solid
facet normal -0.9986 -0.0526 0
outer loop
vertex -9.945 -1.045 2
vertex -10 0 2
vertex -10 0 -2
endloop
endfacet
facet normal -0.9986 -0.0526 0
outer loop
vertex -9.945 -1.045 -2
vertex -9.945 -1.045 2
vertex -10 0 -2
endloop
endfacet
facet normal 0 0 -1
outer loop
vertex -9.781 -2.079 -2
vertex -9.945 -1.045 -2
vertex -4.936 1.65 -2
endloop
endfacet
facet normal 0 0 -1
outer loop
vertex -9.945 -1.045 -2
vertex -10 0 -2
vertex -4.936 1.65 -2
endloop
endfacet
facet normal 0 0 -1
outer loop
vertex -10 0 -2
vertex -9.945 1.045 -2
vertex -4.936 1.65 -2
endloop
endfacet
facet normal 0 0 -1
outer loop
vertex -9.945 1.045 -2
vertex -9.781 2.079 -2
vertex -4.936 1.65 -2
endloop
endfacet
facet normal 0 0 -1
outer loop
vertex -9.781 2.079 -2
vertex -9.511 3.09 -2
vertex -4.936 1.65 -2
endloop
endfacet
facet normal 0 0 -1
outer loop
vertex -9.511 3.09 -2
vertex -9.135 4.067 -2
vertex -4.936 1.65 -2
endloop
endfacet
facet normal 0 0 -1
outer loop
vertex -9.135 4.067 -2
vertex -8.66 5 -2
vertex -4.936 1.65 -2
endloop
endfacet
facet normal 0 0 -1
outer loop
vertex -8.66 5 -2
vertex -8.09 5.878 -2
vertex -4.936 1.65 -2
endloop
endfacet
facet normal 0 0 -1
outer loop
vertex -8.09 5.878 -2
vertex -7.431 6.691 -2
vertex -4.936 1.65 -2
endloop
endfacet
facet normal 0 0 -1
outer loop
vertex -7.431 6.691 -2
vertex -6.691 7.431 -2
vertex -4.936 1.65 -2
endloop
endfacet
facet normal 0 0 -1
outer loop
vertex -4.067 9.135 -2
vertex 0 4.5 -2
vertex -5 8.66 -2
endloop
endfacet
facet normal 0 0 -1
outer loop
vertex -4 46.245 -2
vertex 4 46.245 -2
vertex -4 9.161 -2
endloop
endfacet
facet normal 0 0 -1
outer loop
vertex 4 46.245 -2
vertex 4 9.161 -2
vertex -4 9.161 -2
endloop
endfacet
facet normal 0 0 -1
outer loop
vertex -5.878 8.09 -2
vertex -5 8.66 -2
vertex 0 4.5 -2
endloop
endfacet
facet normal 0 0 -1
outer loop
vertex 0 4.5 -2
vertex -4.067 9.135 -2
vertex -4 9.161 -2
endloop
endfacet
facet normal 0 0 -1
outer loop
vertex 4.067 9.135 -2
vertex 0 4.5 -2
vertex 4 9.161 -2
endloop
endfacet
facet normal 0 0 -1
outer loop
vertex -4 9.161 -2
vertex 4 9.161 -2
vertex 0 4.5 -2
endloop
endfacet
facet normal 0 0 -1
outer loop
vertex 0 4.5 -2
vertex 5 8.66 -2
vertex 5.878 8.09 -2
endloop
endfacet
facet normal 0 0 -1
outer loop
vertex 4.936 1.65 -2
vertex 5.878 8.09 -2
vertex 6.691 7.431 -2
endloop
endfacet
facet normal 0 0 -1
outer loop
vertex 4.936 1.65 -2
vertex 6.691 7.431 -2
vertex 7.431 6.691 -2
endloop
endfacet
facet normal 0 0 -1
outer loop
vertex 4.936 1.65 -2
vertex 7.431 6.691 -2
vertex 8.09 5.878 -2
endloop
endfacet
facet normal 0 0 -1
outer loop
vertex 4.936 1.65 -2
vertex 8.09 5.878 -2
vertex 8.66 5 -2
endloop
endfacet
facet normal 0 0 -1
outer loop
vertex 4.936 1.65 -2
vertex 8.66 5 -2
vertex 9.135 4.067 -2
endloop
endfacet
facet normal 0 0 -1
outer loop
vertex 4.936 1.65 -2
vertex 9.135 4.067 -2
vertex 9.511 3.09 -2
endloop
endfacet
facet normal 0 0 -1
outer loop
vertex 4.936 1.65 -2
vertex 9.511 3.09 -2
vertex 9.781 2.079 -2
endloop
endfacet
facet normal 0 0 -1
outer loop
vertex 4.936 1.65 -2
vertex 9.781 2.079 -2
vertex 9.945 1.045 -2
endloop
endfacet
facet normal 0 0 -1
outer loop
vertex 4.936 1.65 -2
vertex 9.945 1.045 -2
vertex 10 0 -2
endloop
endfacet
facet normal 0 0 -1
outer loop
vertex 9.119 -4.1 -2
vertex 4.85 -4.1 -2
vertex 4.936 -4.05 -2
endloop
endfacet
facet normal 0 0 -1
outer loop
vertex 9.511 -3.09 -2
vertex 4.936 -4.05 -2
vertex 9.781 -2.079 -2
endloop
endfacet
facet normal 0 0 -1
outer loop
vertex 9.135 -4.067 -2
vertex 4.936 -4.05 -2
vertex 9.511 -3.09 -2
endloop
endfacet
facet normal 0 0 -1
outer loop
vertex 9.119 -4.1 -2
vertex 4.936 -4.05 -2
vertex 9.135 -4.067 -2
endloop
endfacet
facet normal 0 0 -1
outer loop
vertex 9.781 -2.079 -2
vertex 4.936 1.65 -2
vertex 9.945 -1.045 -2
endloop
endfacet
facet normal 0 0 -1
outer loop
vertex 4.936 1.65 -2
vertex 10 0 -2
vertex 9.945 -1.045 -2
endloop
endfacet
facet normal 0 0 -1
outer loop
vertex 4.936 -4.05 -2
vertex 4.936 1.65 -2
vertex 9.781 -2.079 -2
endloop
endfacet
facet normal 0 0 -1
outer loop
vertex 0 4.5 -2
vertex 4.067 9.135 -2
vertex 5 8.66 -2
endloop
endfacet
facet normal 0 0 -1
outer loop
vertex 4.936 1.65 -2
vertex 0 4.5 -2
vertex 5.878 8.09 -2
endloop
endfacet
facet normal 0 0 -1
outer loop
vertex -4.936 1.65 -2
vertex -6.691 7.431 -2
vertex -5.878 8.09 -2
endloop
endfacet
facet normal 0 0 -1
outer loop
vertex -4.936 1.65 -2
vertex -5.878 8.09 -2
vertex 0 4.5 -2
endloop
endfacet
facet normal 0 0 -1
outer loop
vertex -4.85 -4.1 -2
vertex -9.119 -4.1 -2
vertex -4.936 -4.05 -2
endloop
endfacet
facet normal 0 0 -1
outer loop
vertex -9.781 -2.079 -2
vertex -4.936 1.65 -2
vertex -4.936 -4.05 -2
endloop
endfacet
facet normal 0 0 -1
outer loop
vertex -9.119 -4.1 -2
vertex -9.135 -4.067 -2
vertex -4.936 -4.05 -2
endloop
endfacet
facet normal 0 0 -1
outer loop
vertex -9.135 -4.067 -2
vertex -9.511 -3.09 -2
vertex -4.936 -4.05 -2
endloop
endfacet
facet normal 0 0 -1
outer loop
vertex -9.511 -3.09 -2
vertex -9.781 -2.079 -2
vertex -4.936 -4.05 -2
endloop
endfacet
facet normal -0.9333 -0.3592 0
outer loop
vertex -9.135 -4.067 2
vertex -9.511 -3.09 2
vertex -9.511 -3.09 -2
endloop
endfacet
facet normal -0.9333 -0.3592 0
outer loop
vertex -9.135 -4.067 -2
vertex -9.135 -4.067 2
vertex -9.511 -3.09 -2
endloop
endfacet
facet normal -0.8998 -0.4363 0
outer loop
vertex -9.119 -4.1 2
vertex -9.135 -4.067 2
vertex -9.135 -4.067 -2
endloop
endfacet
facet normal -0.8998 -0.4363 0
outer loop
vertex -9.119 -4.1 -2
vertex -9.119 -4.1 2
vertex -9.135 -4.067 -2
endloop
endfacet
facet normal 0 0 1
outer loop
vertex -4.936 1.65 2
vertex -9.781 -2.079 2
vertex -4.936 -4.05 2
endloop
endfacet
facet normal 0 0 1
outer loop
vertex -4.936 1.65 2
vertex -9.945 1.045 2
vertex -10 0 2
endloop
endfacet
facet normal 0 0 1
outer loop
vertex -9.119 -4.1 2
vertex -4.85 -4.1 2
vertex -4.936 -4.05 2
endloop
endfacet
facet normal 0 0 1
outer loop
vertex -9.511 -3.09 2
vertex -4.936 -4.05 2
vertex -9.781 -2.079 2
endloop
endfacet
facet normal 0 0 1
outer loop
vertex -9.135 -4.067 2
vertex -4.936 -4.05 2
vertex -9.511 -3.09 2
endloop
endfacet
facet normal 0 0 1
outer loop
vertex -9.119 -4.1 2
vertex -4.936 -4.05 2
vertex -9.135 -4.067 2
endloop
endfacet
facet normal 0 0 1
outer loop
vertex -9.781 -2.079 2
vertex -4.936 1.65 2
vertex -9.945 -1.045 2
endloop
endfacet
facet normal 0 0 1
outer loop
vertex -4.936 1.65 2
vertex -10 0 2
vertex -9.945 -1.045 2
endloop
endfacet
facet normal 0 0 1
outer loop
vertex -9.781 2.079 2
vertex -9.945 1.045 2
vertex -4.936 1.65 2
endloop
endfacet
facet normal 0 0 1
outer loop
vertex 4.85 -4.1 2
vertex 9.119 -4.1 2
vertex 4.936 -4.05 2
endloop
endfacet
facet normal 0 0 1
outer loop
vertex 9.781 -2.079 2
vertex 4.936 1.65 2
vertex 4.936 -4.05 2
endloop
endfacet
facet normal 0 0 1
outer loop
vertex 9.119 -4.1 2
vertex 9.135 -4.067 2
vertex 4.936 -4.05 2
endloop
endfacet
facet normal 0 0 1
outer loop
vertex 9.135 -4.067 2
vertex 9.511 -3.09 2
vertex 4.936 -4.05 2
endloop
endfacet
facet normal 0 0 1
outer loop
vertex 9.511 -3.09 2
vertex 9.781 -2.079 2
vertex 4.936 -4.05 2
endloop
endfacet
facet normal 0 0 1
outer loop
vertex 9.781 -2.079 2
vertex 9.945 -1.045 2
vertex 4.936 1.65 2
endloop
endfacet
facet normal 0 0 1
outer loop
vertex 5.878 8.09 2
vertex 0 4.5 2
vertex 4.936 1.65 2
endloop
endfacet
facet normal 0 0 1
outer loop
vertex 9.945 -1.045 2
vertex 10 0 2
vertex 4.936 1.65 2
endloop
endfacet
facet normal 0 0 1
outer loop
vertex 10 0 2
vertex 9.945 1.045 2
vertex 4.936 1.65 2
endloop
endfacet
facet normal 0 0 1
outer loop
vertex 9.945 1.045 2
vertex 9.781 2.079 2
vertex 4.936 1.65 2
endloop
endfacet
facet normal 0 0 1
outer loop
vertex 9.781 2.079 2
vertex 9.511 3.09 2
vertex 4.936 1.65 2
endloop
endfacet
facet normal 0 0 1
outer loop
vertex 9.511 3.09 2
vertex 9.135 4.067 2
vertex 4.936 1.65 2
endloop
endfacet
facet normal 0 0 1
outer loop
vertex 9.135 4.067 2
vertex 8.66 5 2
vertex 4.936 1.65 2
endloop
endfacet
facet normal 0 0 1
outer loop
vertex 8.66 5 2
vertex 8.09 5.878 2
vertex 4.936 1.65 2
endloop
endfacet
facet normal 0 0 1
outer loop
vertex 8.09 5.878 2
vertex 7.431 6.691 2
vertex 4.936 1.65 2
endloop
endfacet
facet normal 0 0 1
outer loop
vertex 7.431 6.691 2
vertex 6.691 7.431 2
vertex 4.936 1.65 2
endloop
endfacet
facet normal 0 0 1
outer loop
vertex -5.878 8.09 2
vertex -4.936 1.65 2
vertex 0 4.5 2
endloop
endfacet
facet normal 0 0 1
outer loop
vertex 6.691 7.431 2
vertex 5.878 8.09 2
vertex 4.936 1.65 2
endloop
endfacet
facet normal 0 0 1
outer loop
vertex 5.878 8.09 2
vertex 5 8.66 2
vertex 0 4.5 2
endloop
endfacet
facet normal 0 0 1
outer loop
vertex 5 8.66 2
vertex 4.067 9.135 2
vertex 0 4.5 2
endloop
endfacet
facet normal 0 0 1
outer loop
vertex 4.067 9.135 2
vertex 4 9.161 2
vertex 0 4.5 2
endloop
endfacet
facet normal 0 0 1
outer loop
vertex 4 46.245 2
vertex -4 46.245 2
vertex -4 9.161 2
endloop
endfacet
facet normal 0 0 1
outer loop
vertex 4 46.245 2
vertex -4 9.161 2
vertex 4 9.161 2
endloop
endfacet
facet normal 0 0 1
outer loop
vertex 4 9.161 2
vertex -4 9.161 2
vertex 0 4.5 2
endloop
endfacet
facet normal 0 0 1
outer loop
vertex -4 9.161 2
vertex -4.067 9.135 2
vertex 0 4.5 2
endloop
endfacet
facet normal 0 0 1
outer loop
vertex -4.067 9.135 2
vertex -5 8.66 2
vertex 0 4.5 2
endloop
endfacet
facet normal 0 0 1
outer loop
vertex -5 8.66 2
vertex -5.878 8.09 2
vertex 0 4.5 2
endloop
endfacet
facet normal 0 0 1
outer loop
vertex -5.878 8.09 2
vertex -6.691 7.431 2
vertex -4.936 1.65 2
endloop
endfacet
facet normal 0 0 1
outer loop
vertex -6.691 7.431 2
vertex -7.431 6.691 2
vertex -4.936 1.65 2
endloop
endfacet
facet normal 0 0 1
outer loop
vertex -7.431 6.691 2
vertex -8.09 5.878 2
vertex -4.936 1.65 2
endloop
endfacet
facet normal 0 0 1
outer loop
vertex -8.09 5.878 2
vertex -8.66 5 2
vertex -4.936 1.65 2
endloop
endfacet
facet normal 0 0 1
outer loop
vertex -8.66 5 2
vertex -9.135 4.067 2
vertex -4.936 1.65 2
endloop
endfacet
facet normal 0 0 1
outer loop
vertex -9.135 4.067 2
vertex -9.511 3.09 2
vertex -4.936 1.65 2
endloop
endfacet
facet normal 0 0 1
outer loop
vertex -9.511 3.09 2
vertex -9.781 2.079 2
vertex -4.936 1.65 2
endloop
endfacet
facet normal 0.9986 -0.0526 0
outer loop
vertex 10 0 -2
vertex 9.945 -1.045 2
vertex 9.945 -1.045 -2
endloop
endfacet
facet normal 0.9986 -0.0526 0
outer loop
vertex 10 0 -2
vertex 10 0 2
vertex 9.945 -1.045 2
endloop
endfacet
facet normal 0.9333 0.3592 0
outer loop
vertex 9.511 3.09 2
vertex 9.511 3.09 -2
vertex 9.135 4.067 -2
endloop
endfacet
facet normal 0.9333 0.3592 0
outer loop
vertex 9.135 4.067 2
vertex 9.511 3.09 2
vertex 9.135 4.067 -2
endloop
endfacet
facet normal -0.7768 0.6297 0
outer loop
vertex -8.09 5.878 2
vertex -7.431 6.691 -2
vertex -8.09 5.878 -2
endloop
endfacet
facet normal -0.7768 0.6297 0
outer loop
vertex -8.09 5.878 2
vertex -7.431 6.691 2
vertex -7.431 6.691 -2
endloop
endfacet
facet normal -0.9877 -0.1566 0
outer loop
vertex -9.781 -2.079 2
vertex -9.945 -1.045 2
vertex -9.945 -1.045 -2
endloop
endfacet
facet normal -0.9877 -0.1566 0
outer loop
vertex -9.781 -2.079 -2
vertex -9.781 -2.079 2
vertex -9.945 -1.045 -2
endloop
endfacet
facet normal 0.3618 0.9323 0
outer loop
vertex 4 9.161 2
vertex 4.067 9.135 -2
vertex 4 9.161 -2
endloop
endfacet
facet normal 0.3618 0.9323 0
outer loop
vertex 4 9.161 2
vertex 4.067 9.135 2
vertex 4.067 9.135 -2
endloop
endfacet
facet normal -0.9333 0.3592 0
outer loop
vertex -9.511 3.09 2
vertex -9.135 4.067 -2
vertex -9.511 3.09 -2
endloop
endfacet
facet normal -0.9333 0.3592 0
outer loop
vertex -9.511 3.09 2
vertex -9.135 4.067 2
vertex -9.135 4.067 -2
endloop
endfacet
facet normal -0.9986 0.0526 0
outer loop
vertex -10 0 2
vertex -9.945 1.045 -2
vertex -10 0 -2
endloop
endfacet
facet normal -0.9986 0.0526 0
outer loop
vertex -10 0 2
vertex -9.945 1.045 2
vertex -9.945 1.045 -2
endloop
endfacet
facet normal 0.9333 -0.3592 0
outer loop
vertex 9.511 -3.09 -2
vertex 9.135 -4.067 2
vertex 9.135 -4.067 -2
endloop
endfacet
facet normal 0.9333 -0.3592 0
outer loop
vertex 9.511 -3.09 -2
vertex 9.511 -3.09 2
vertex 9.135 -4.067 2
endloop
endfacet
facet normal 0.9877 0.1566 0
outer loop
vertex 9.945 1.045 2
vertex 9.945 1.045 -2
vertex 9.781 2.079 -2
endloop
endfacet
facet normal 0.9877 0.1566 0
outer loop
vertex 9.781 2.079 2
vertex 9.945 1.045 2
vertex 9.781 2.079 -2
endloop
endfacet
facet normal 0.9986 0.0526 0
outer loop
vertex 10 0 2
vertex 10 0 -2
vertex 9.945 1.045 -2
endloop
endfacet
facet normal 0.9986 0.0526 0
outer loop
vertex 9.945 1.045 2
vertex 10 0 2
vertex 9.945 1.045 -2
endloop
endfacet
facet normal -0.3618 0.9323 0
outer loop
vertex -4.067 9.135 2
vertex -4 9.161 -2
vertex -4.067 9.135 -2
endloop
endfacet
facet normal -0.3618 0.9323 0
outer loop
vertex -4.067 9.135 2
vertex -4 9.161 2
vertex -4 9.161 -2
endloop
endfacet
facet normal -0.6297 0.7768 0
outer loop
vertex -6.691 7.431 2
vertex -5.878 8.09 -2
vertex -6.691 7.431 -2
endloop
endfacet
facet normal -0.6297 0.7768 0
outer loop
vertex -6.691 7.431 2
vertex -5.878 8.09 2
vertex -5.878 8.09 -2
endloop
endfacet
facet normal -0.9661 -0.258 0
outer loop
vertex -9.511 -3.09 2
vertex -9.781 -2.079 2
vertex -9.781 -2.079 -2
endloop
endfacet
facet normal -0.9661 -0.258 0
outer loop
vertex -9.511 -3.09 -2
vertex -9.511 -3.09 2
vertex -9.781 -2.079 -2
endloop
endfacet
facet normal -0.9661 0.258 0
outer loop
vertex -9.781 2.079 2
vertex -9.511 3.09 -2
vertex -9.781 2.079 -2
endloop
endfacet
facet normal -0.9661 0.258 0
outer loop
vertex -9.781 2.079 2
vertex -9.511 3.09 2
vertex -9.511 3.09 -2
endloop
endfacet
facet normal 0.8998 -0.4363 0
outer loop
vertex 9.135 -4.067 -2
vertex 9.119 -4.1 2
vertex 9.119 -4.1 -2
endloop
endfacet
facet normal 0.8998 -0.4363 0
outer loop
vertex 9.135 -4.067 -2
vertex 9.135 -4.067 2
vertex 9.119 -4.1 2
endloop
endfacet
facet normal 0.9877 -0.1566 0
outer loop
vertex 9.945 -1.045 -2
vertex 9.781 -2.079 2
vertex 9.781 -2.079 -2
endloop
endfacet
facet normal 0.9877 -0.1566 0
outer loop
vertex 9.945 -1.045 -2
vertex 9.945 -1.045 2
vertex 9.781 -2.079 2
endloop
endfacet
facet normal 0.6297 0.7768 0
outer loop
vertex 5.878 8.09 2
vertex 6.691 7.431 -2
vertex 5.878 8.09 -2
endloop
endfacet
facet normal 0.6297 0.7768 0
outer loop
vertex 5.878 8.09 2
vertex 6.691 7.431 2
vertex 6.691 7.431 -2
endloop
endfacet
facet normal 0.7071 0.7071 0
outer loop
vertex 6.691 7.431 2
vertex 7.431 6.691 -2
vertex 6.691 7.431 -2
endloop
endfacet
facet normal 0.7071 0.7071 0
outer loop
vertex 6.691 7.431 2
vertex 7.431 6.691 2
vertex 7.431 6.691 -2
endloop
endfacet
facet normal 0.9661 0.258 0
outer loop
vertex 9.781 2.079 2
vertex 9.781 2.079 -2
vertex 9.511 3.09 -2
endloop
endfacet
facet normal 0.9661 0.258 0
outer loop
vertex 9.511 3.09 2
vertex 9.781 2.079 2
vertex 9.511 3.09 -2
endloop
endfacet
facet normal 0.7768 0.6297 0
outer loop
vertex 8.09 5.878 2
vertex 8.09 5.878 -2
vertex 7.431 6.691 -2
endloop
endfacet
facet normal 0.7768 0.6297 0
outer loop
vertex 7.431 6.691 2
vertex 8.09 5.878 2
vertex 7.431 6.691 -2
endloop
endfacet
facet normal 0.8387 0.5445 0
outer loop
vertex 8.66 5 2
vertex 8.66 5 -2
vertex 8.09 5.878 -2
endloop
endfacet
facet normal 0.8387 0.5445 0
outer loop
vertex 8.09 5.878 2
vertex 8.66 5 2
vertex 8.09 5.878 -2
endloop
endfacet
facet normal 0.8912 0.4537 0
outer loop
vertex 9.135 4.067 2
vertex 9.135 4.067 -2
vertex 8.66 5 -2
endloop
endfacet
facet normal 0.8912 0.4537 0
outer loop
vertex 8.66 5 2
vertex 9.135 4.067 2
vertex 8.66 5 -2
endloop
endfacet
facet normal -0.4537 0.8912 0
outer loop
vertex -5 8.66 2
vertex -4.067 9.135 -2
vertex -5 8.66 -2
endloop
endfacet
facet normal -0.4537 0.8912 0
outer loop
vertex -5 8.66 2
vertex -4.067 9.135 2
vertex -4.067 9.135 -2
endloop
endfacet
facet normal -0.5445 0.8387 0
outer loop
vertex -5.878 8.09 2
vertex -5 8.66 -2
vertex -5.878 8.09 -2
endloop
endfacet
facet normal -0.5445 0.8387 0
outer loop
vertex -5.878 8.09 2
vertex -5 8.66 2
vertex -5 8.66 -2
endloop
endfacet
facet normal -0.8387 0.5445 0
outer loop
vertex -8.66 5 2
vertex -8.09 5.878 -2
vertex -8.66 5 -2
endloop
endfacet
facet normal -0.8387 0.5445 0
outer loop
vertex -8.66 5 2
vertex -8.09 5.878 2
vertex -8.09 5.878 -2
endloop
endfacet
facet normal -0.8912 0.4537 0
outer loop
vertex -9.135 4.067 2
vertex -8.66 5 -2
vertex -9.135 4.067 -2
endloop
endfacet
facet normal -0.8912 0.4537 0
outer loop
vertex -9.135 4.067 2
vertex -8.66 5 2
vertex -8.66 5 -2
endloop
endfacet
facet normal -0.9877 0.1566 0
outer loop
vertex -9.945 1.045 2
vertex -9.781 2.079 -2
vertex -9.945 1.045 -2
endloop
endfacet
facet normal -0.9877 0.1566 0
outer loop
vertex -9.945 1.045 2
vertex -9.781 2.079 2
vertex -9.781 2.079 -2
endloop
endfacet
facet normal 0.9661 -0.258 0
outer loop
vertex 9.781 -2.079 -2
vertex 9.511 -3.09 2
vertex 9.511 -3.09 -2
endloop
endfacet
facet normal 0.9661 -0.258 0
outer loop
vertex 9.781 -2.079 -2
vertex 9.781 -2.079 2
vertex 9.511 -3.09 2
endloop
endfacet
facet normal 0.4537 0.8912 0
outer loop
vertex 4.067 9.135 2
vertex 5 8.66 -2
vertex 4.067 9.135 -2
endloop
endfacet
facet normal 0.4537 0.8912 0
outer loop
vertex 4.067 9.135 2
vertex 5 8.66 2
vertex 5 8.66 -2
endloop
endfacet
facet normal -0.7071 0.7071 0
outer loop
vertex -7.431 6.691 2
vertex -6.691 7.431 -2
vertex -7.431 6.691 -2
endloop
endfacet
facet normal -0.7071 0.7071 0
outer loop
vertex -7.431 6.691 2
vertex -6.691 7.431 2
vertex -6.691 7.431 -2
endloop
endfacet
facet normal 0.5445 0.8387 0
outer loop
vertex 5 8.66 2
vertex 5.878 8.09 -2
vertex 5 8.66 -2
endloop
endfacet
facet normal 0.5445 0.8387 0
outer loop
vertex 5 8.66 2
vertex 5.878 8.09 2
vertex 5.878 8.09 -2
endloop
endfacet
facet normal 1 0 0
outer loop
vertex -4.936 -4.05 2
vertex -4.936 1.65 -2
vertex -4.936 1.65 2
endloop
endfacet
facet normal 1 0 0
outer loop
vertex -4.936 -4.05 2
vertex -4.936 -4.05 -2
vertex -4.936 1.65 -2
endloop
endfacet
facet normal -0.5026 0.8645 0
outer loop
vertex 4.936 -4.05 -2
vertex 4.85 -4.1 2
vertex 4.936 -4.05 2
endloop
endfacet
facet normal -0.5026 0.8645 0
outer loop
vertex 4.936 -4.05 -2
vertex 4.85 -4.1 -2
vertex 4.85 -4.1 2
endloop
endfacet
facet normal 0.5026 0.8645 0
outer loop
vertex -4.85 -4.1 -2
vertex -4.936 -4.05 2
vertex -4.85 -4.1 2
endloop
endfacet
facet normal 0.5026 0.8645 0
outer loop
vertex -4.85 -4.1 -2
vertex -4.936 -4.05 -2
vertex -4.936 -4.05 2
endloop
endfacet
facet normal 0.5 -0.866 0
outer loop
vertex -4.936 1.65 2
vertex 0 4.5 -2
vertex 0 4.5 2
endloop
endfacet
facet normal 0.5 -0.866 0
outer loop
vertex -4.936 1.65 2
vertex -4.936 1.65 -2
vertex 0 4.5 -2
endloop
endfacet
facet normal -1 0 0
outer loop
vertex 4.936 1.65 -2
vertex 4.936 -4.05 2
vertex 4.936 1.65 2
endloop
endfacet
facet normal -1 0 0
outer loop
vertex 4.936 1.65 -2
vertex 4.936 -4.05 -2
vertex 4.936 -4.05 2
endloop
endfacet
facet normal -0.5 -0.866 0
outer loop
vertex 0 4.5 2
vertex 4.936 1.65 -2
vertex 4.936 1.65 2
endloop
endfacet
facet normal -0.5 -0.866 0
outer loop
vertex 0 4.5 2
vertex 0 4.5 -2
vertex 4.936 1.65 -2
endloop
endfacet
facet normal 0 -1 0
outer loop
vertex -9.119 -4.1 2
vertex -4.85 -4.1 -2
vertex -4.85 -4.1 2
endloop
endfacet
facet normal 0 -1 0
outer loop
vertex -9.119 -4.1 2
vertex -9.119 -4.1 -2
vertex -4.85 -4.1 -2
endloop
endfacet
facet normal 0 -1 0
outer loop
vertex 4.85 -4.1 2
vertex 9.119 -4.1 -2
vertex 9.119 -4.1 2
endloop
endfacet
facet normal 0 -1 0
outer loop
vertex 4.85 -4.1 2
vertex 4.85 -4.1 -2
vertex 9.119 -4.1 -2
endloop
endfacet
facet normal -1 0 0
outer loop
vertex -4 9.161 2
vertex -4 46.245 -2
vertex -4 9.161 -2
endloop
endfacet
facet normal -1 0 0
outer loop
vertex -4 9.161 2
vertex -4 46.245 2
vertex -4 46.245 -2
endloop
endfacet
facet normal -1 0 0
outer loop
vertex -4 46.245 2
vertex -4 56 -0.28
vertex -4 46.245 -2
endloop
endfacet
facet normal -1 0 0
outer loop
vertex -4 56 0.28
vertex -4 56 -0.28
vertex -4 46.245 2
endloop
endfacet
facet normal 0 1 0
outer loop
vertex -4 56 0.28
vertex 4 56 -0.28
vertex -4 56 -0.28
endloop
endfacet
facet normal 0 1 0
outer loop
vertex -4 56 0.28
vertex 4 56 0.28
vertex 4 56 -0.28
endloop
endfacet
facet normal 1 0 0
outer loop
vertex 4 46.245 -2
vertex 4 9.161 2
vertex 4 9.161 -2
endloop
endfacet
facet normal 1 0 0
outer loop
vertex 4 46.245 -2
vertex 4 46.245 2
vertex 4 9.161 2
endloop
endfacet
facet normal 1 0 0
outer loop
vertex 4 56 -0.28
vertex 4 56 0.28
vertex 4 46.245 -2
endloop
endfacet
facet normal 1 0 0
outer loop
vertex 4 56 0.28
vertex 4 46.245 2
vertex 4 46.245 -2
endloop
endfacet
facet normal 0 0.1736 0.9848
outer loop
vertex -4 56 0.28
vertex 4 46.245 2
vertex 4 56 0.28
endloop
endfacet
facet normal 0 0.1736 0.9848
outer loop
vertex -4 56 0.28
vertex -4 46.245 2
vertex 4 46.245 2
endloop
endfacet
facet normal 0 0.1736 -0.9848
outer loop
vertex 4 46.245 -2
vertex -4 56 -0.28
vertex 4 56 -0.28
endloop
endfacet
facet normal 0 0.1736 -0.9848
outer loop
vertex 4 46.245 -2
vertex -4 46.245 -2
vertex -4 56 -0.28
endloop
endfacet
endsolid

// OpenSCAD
module hex(){
$fn = 6;

    translate([0,0,0]) cylinder(6, 5.7,5.7);

}
$fn = 60;

difference(){
cylinder(4, 10,10, true);
rotate([0,0,90])  translate([-1.2,0,-3]) hex(); 
  translate([-10,-10.1,-3])  cube([20,6,10]);
}
difference(){
translate([-4,6,-2])  cube([8,50,4]);
rotate([-10,0,0]) translate([-5,40,10])  cube([10,50,4]);
rotate([10,0,0]) translate([-5,40,-14])  cube([10,50,4]);
}
    
